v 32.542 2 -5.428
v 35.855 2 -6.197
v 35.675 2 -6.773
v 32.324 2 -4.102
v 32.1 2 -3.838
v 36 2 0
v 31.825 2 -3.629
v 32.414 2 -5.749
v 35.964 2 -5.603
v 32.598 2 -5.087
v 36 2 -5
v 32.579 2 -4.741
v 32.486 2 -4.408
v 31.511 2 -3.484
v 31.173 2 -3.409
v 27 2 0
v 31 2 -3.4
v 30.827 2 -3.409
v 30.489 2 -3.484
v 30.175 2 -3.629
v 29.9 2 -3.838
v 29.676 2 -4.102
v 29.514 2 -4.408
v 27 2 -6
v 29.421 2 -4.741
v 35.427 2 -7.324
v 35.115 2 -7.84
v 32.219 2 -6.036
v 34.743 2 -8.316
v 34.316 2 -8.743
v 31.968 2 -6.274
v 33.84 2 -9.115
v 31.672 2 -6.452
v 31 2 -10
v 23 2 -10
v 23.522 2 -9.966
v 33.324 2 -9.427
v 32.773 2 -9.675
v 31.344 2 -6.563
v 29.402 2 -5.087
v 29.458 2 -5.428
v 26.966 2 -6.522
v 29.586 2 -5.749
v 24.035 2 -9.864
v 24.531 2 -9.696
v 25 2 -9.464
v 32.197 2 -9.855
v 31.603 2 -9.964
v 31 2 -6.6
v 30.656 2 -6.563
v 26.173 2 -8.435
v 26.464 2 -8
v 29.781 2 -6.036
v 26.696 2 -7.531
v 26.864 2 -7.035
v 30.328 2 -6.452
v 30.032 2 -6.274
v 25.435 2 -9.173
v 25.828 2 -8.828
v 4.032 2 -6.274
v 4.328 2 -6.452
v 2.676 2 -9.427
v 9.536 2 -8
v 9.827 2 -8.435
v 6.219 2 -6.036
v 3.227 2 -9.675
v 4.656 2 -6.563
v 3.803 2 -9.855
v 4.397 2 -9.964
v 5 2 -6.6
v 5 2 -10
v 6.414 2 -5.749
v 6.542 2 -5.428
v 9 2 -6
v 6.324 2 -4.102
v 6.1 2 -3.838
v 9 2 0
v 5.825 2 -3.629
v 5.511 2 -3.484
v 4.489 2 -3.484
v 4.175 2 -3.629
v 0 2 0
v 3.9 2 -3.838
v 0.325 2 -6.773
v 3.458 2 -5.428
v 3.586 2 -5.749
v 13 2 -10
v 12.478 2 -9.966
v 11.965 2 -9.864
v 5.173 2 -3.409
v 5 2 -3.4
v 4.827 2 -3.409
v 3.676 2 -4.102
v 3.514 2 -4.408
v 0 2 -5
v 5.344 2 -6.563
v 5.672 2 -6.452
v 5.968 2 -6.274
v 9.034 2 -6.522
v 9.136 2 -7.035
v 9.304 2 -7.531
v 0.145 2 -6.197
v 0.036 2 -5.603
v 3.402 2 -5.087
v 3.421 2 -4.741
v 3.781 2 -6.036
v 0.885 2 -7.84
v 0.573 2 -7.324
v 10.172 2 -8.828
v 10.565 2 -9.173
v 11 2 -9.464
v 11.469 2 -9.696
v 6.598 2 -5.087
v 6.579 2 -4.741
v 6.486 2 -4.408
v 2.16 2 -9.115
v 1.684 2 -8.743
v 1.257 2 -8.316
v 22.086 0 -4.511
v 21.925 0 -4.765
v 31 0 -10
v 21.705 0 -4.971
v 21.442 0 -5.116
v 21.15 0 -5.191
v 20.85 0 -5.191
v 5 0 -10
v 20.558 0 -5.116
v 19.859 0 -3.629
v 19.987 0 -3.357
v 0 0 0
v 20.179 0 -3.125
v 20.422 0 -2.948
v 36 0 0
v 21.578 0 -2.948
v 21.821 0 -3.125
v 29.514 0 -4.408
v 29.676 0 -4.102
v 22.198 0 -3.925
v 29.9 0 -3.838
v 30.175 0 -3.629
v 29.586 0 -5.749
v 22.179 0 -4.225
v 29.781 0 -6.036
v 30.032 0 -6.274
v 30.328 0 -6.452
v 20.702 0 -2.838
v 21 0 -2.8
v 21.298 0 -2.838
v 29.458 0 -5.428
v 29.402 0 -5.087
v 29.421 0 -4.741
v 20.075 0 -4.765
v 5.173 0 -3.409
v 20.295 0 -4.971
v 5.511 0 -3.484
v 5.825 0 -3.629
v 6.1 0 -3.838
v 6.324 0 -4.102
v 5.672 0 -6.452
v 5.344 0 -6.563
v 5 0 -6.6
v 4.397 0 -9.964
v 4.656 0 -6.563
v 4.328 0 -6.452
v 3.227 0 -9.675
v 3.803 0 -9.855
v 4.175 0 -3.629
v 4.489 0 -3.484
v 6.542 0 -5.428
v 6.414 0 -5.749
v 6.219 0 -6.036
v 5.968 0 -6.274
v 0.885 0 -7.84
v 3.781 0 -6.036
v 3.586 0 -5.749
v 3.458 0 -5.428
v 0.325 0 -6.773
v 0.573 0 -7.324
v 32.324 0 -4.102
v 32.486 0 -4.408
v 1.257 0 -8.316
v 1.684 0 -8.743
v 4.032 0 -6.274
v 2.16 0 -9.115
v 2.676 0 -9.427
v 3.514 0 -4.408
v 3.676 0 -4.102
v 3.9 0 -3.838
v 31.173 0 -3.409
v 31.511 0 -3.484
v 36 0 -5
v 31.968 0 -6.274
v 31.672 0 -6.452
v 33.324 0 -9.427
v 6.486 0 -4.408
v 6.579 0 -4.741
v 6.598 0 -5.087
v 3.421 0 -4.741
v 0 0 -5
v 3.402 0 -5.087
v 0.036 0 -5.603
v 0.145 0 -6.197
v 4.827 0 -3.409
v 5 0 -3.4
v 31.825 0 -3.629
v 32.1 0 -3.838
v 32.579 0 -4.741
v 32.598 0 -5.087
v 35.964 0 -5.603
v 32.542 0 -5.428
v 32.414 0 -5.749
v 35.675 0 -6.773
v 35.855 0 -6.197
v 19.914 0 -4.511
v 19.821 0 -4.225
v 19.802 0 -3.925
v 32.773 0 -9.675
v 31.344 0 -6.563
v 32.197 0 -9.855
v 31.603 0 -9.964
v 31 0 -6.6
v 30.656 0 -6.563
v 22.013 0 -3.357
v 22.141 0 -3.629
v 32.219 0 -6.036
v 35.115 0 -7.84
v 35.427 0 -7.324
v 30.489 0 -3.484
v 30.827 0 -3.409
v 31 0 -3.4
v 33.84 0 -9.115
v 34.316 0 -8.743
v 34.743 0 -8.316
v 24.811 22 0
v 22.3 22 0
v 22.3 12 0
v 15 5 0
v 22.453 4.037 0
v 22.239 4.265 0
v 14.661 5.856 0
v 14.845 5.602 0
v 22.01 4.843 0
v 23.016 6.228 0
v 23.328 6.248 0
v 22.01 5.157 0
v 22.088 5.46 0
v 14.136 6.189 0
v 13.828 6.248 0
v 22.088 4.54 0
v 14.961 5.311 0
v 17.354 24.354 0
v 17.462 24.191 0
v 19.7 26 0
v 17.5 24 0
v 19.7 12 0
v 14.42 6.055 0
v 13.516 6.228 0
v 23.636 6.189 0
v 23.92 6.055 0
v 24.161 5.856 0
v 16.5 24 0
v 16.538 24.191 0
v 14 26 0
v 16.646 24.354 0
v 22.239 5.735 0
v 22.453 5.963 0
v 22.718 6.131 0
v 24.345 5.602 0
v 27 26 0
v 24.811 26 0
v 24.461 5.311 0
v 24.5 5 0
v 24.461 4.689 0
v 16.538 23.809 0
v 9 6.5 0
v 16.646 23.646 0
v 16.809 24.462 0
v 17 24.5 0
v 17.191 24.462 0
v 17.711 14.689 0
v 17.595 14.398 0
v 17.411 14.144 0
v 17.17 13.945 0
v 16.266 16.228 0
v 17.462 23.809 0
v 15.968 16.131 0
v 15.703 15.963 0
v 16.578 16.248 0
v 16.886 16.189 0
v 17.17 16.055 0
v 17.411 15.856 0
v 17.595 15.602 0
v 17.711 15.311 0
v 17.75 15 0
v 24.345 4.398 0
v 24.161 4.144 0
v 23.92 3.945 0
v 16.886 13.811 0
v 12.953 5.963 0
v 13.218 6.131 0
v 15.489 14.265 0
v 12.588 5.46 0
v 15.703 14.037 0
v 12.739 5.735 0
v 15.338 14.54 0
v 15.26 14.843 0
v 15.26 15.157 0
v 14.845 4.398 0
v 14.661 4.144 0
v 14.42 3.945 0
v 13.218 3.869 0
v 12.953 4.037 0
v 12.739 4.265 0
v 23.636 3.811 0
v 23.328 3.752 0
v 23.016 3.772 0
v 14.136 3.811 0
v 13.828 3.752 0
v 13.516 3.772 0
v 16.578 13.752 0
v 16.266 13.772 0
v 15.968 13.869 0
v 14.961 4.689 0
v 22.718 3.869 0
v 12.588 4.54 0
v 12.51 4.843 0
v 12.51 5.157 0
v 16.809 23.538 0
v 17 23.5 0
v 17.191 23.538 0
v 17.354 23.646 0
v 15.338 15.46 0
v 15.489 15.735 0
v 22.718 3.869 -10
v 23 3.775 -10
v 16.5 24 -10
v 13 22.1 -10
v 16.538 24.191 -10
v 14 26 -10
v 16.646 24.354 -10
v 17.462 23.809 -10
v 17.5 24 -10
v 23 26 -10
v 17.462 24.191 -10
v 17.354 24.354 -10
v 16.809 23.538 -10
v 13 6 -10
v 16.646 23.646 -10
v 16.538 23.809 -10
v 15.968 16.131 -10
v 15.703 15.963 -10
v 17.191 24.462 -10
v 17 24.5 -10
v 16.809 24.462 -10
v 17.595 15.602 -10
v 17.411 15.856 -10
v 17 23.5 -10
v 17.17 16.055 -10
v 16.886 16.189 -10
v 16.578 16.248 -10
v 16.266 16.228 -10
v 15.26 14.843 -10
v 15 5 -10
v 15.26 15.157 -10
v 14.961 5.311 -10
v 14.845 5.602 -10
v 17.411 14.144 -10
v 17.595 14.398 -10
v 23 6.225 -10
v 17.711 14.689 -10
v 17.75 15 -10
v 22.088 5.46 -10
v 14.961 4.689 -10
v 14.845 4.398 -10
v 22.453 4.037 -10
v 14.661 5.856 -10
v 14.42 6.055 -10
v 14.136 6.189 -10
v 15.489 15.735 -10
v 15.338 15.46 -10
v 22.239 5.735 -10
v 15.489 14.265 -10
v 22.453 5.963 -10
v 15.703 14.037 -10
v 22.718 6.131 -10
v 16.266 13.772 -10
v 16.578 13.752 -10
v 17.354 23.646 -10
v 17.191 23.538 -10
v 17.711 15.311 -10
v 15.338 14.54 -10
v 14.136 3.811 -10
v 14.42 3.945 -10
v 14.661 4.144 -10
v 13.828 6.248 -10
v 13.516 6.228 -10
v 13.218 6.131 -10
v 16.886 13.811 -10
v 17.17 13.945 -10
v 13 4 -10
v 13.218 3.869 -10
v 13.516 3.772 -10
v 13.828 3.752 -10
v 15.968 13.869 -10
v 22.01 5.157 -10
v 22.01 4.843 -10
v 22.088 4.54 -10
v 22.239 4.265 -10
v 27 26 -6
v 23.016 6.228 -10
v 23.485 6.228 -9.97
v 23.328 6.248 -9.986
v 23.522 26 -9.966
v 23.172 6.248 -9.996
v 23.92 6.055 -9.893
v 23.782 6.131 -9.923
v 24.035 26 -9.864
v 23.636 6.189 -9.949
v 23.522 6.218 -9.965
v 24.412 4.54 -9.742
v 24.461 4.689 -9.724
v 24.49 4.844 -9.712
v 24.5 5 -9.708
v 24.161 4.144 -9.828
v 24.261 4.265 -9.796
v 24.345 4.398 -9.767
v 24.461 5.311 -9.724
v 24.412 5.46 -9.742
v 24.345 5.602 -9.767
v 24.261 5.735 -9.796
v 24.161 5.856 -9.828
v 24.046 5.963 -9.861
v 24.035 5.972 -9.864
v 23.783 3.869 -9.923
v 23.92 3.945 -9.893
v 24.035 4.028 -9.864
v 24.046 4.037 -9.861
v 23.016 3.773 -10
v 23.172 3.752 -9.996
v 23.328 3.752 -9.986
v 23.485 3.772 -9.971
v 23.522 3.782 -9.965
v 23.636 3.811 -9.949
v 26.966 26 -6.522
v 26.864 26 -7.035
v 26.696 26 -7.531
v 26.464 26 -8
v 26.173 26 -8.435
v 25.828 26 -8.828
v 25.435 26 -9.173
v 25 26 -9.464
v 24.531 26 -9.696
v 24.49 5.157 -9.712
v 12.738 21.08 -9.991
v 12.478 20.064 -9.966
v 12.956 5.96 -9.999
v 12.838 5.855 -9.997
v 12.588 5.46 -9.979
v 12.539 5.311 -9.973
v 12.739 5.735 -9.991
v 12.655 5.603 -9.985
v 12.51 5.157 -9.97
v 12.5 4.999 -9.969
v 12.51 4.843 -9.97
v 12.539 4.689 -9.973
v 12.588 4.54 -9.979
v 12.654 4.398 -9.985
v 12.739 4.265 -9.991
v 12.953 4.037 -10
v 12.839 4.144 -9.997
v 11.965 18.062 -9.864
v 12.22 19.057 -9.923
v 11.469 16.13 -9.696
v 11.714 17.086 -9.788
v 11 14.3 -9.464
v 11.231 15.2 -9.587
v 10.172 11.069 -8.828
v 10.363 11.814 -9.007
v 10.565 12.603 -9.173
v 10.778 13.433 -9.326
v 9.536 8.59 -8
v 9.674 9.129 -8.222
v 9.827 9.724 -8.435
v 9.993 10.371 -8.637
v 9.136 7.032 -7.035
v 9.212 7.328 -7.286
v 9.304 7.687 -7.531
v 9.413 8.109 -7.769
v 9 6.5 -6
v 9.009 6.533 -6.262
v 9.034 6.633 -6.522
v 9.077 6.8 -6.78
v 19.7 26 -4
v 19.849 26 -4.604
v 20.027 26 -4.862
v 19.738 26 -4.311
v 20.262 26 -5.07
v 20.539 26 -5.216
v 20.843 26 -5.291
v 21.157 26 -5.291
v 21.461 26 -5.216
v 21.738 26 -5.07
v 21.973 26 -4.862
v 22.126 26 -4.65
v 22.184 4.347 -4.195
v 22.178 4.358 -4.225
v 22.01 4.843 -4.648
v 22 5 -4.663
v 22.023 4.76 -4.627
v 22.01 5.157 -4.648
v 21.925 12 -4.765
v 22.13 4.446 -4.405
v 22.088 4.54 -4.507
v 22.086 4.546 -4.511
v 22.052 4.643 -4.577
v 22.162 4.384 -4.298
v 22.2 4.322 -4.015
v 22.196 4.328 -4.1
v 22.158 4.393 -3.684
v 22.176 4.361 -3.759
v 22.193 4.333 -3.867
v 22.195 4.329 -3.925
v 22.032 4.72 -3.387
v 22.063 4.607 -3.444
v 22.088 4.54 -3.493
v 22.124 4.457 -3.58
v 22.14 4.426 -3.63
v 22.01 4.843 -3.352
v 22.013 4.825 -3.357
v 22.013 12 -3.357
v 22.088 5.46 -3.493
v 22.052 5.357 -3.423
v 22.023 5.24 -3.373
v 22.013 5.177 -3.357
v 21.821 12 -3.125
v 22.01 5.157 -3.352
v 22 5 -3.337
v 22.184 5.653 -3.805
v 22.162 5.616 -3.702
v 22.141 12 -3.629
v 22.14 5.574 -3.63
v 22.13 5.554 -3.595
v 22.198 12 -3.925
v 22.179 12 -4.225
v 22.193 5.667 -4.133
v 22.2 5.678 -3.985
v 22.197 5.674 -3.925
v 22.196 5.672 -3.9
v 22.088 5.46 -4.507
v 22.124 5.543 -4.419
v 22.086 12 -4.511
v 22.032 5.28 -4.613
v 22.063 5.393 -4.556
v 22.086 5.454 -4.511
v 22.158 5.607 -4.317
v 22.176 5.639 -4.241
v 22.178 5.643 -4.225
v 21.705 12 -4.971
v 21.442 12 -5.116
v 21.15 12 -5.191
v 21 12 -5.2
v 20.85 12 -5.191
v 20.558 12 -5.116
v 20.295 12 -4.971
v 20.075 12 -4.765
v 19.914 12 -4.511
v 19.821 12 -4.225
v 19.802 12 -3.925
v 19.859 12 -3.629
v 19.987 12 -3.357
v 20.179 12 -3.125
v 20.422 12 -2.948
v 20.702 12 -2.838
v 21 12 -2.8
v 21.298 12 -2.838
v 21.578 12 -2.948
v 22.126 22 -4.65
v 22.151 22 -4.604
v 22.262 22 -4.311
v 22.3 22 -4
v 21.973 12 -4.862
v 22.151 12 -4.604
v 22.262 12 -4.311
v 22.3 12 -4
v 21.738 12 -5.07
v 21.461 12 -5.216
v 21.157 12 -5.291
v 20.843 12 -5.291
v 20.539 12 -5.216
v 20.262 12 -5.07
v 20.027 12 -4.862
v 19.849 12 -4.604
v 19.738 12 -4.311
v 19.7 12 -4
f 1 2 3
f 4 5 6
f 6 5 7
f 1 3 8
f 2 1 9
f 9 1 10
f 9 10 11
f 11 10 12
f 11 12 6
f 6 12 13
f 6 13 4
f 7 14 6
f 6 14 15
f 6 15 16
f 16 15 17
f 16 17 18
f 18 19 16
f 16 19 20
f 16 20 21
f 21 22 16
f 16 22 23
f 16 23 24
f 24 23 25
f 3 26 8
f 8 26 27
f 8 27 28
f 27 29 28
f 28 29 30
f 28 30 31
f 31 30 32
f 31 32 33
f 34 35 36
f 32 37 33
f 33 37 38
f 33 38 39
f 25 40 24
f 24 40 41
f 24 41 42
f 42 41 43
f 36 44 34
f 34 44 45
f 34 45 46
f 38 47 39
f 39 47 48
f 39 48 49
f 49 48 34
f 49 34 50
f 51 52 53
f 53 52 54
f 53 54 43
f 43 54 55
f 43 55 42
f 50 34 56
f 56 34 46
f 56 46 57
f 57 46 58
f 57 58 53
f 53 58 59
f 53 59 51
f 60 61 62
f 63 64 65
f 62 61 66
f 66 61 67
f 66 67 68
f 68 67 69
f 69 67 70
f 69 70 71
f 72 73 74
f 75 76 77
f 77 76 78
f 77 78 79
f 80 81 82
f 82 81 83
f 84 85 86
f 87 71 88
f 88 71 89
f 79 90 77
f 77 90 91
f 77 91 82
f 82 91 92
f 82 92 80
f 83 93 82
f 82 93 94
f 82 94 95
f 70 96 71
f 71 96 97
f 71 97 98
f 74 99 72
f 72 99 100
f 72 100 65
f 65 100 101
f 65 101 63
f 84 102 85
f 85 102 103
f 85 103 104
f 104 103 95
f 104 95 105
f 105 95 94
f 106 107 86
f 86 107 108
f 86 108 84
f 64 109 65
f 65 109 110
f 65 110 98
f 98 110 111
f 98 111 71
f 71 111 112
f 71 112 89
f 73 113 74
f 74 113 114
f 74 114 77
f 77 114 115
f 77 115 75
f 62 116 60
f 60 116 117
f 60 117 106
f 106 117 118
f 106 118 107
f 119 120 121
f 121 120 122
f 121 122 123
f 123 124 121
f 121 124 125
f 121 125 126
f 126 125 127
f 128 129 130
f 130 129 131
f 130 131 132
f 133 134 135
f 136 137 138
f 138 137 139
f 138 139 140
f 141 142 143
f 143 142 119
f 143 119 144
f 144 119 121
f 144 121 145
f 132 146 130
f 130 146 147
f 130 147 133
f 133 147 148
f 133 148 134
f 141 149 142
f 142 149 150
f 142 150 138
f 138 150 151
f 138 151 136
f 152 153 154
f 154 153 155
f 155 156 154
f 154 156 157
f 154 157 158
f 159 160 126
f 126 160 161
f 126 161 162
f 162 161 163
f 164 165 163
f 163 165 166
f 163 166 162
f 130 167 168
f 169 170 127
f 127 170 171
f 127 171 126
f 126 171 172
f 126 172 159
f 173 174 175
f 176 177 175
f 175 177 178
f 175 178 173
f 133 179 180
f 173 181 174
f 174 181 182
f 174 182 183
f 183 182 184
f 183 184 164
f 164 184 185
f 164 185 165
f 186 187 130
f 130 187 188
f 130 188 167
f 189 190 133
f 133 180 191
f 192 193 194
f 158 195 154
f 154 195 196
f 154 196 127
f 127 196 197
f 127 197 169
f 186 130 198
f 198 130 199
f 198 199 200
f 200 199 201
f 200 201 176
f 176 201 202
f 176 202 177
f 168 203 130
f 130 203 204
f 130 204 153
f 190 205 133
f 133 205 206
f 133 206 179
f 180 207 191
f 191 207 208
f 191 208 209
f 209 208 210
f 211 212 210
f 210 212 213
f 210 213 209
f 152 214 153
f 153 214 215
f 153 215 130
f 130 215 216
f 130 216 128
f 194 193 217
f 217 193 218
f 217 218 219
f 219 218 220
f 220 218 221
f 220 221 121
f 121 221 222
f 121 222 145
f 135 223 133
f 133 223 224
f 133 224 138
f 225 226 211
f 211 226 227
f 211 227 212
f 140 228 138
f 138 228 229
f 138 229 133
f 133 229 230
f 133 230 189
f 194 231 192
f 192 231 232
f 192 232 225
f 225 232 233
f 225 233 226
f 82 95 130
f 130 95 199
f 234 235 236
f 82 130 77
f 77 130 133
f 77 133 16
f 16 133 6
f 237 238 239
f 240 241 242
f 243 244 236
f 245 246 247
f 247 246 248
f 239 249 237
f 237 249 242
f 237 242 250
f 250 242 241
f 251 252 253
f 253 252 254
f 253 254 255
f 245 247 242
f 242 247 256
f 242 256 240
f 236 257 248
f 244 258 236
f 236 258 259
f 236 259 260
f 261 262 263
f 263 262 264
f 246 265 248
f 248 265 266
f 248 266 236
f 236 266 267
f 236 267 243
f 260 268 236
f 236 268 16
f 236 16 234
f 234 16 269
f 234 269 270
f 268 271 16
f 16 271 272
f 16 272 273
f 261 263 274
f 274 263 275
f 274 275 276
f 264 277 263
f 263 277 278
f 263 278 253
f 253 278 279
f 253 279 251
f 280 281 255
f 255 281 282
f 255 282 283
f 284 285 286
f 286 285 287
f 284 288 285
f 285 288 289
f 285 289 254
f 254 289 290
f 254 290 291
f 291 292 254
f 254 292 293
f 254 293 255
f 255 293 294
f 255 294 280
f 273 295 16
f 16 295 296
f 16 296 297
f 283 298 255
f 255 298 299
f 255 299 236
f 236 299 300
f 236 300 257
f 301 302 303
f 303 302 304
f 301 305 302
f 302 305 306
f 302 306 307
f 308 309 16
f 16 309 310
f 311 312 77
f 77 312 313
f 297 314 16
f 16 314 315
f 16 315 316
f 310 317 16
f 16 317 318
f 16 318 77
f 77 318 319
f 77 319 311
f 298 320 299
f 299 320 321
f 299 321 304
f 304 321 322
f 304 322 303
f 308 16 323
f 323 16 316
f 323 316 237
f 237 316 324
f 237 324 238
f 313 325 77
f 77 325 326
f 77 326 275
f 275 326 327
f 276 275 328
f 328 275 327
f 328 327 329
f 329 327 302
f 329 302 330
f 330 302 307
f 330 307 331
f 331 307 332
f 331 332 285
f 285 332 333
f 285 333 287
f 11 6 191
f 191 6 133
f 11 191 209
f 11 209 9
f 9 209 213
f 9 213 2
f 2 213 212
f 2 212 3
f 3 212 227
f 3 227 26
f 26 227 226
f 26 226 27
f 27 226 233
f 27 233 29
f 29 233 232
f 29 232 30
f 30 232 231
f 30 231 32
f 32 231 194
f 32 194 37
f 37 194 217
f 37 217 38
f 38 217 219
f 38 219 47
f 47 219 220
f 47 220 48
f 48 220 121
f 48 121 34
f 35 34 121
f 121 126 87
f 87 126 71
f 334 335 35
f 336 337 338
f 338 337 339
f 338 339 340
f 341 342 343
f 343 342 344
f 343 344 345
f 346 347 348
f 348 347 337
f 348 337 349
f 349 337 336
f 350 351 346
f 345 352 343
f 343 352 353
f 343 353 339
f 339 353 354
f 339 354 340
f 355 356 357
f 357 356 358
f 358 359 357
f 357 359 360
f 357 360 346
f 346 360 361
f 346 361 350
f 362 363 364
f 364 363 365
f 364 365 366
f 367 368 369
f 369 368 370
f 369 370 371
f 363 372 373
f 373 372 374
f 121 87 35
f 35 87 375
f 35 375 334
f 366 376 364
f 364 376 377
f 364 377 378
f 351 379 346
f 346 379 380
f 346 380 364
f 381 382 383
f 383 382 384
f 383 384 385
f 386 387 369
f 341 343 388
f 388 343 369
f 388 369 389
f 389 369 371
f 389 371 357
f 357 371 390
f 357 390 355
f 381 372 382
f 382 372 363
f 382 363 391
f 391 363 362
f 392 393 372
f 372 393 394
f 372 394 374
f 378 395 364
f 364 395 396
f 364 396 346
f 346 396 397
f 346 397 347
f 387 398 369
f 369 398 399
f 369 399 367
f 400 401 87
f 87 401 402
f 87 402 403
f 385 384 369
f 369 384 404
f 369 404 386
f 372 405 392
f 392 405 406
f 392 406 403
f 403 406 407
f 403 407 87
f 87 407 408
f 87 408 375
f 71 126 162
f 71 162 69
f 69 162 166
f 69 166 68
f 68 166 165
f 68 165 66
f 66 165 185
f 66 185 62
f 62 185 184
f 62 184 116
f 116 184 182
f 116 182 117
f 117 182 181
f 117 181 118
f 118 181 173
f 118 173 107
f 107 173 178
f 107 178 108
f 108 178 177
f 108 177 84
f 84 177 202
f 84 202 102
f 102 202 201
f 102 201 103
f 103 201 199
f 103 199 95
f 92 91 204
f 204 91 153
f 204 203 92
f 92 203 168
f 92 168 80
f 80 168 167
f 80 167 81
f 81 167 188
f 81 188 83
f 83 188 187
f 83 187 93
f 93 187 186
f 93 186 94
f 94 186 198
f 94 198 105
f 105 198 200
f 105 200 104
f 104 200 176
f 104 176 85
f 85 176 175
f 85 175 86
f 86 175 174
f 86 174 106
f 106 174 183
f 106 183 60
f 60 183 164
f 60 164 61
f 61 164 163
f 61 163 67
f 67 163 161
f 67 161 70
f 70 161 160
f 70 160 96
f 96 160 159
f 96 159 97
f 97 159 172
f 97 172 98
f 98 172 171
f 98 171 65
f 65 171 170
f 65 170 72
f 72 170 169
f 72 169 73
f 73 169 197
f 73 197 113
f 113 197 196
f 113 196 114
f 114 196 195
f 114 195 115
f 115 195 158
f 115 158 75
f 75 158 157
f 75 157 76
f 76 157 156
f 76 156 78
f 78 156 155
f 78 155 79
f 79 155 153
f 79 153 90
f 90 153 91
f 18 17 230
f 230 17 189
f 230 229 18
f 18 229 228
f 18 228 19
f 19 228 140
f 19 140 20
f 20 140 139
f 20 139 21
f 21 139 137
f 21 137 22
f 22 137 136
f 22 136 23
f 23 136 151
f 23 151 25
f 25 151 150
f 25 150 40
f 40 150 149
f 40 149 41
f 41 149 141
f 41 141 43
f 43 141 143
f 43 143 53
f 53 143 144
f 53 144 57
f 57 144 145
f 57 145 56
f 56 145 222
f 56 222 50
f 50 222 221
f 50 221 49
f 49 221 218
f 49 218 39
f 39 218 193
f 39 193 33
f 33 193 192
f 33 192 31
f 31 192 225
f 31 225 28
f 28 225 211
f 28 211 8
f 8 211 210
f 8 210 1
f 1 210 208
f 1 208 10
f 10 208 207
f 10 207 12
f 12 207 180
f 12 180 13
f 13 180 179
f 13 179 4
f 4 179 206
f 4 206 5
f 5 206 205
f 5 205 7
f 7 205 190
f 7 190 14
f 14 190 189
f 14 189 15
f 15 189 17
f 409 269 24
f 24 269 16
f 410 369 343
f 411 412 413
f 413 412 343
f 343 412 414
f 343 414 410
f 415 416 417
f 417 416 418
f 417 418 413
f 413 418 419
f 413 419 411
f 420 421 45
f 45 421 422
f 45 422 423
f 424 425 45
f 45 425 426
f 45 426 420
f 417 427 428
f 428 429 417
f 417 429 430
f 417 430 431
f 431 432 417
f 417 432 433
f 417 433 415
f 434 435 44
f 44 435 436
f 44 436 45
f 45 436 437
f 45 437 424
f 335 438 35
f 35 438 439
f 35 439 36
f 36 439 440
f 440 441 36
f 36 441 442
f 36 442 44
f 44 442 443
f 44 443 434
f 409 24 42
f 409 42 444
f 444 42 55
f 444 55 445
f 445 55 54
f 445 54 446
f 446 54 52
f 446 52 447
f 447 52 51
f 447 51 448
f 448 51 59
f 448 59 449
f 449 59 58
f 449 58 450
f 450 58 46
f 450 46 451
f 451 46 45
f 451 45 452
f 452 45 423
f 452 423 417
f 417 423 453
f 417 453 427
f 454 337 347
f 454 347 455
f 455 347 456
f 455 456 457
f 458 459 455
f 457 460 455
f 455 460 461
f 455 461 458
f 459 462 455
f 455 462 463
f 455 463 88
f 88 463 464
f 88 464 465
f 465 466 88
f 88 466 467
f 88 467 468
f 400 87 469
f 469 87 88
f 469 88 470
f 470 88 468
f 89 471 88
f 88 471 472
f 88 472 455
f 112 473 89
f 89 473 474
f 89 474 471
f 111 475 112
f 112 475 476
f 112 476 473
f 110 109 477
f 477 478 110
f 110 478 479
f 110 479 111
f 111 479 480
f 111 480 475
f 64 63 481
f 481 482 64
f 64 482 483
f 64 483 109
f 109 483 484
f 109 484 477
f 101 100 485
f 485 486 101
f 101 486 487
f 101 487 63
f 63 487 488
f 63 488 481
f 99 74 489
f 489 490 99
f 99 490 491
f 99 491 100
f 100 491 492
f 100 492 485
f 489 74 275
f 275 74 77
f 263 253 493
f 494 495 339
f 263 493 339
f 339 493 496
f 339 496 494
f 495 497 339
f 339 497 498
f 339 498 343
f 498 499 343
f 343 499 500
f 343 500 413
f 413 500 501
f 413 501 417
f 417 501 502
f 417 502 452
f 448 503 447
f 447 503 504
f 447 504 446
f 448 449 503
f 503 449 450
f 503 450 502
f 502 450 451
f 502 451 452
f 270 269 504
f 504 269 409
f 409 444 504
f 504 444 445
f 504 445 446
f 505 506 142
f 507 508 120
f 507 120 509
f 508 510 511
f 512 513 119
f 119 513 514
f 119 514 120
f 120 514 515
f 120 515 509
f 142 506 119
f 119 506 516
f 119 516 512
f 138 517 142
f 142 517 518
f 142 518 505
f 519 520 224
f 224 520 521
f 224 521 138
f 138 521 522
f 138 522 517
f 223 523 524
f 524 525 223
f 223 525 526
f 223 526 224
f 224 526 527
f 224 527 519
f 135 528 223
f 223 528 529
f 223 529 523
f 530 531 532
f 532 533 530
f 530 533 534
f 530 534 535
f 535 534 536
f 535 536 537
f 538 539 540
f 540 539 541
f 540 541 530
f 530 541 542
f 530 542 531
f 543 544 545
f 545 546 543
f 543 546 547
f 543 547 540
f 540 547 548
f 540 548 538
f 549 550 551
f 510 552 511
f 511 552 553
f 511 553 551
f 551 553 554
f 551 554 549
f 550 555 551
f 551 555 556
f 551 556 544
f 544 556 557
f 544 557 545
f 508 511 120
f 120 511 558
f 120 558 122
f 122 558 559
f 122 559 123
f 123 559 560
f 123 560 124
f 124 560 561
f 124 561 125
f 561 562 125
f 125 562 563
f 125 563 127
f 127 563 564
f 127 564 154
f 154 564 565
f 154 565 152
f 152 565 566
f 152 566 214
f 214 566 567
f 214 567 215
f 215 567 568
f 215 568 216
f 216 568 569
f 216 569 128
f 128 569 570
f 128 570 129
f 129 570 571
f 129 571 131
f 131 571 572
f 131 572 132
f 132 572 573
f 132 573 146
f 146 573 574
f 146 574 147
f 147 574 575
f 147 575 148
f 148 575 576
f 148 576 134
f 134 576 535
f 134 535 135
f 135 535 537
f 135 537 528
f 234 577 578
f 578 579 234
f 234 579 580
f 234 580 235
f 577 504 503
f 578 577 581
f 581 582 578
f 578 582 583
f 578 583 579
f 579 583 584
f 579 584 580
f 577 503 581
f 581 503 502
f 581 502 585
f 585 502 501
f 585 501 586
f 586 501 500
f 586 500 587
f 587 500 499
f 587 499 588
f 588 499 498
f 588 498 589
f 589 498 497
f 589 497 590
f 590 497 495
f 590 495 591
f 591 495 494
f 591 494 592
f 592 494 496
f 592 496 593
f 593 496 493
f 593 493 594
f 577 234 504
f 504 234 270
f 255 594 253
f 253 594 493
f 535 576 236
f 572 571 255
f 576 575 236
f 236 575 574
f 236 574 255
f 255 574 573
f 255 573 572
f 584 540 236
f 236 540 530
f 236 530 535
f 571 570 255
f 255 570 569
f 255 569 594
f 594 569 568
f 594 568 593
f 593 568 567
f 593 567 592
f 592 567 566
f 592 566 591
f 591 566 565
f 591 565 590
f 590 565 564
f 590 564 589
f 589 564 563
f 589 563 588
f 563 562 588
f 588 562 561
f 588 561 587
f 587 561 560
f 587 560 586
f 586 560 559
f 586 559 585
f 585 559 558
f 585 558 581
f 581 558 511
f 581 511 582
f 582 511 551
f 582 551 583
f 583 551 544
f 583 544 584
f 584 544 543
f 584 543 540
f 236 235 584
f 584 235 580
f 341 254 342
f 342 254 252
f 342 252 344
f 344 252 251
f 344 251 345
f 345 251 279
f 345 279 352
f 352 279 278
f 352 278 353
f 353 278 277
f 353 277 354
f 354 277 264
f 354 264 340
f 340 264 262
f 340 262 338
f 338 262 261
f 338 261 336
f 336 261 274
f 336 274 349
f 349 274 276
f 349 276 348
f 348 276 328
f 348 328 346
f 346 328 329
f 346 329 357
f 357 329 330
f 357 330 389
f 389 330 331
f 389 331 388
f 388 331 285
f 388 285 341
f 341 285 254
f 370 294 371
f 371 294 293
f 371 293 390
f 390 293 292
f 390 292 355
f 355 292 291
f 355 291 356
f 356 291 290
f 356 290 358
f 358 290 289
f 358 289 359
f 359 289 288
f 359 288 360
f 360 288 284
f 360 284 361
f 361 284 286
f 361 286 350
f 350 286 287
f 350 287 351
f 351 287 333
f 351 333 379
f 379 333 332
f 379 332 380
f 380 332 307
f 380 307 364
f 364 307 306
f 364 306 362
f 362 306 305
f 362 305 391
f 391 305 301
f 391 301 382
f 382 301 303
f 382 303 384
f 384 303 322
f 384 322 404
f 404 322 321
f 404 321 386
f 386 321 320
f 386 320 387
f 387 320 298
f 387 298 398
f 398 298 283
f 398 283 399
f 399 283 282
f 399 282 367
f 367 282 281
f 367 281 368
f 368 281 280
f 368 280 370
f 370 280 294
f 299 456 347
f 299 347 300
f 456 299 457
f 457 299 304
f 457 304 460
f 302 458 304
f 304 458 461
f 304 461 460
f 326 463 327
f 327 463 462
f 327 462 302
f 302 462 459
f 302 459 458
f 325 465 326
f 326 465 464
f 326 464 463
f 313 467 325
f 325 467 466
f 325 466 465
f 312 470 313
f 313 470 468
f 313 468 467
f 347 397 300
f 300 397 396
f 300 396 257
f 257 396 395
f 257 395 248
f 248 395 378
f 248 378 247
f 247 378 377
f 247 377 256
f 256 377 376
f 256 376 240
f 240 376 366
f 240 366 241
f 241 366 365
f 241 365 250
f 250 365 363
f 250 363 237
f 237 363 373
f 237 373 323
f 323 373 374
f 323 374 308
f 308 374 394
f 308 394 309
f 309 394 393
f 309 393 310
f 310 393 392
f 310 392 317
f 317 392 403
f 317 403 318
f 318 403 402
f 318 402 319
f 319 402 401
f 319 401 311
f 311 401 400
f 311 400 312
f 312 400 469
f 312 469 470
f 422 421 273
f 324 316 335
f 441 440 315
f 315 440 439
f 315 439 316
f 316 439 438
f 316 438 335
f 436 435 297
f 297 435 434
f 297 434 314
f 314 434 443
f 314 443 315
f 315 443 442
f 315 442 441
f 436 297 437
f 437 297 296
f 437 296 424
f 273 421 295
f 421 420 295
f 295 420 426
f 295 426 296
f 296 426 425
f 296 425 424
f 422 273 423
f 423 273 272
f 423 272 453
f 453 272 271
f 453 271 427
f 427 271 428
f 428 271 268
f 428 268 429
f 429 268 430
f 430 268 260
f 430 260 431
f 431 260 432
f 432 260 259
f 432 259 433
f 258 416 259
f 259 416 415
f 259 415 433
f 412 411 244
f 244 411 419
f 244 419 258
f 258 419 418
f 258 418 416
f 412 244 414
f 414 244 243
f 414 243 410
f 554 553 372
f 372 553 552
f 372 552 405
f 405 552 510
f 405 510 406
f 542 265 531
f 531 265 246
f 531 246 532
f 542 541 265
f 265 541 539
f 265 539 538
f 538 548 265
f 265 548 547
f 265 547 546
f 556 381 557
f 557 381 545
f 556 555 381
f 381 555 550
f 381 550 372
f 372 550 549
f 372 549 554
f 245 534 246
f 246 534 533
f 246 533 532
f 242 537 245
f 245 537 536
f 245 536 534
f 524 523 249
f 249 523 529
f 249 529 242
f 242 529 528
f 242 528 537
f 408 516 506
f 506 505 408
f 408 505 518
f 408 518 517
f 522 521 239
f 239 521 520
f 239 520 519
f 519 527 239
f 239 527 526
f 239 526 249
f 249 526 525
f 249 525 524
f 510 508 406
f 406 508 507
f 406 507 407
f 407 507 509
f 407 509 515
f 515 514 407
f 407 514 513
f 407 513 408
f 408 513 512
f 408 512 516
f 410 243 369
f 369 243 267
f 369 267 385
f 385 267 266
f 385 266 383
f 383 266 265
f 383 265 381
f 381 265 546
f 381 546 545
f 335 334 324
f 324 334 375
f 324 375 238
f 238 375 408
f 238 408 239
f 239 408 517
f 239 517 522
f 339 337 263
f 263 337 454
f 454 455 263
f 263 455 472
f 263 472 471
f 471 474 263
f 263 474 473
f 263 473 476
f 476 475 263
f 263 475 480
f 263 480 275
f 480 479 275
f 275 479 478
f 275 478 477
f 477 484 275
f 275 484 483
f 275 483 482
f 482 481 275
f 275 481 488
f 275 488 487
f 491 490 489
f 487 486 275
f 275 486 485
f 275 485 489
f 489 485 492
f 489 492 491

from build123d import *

# Parameters (mm, degrees)
SKETCH1_R           = 1.6
BOSS_EXTRUDE1_DEPTH = 2
BOSS_EXTRUDE2_DEPTH = 26
CUT_EXTRUDE1_REACH  = 28
SKETCH3_R           = 1.2
CUT_EXTRUDE2_DEPTH  = 4
CUT_EXTRUDE3_DEPTH  = 14
CUT_EXTRUDE4_REACH  = 12
SKETCH6_R           = 0.5
SKETCH6_R_2         = 1.25


with BuildPart() as part:
    # Sketch1 → Boss-Extrude1 (new body)
    with BuildSketch(Plane(origin=(0, 0, 0), x_dir=(1, 0, 0), z_dir=(0, 1, 0))):
        with BuildLine():
            Line((0, 0), (36, 0))
            Line((36, 0), (36, 5))
            ThreePointArc((36, 5), (34.535533906, 8.535533906), (31, 10))
            Line((31, 10), (27, 10))
            Line((27, 10), (9, 10))
            Line((9, 10), (5, 10))
            ThreePointArc((5, 10), (1.464466094, 8.535533906), (0, 5))
            Line((0, 5), (0, 0))
        make_face()
        with Locations((5, 5)):
            Circle(SKETCH1_R, mode=Mode.SUBTRACT)
        with Locations((31, 5)):
            Circle(SKETCH1_R, mode=Mode.SUBTRACT)
    extrude(amount=BOSS_EXTRUDE1_DEPTH)

    # Sketch2 → Boss-Extrude2 (add)
    with BuildSketch(Plane(origin=(0, 0, 0), x_dir=(1, 0, 0), z_dir=(0, 1, 0))):
        with BuildLine():
            Line((27, 0), (27, 6))
            ThreePointArc((27, 6), (25.828427125, 8.828427125), (23, 10))
            Line((23, 10), (13, 10))
            ThreePointArc((13, 10), (10.171572875, 8.828427125), (9, 6))
            Line((9, 6), (9, 0))
            Line((9, 0), (27, 0))
        make_face()
    extrude(amount=BOSS_EXTRUDE2_DEPTH)

    # Sketch3 → Cut-Extrude1 (cut, up to next)
    with BuildSketch(Plane(origin=(0, 26, 0), x_dir=(1, 0, 0), z_dir=(0, 1, 0)), mode=Mode.PRIVATE) as cut_extrude1_sk1:
        with Locations((21, 4)):
            Circle(SKETCH3_R)
    cut_extrude1_tool1 = extrude(cut_extrude1_sk1.sketch, amount=-CUT_EXTRUDE1_REACH, mode=Mode.PRIVATE) & part.part
    add(cut_extrude1_tool1.solids().sort_by_distance((21, 26, -4))[0], mode=Mode.SUBTRACT)

    # Sketch4 → Cut-Extrude2 (cut)
    with BuildSketch(Plane(origin=(0, 26, 0), x_dir=(1, 0, 0), z_dir=(0, 1, 0))):
        with BuildLine():
            Line((22.125833025, 4.65), (24.810511777, 0))
            Line((24.810511777, 0), (19.7, 0))
            Line((19.7, 0), (19.7, 4))
            ThreePointArc((19.7, 4), (20.663535241, 5.255703574), (22.125833025, 4.65))
        make_face()
    extrude(amount=-CUT_EXTRUDE2_DEPTH, mode=Mode.SUBTRACT)

    # Sketch5 → Cut-Extrude3 (cut)
    with BuildSketch(Plane(origin=(0, 26, 0), x_dir=(1, 0, 0), z_dir=(0, 1, 0))):
        with BuildLine():
            Line((19.7, 4), (19.7, 0))
            Line((19.7, 0), (22.3, 0))
            Line((22.3, 0), (22.3, 4))
            ThreePointArc((22.3, 4), (21, 5.3), (19.7, 4))
        make_face()
    extrude(amount=-CUT_EXTRUDE3_DEPTH, mode=Mode.SUBTRACT)

    # Sketch6 → Cut-Extrude4 (cut, up to next)
    with BuildSketch(Plane.XY, mode=Mode.PRIVATE) as cut_extrude4_sk1:
        with Locations((17, 24)):
            Circle(SKETCH6_R)
    cut_extrude4_tool1 = extrude(cut_extrude4_sk1.sketch, amount=-CUT_EXTRUDE4_REACH, mode=Mode.PRIVATE) & part.part
    add(cut_extrude4_tool1.solids().sort_by_distance((17, 24, 0))[0], mode=Mode.SUBTRACT)
    # Sketch6 → Cut-Extrude4 (cut, up to next)
    with BuildSketch(Plane.XY, mode=Mode.PRIVATE) as cut_extrude4_sk2:
        with Locations((16.5, 15)):
            Circle(SKETCH6_R_2)
    cut_extrude4_tool2 = extrude(cut_extrude4_sk2.sketch, amount=-CUT_EXTRUDE4_REACH, mode=Mode.PRIVATE) & part.part
    add(cut_extrude4_tool2.solids().sort_by_distance((16.5, 15, 0))[0], mode=Mode.SUBTRACT)
    # Sketch6 → Cut-Extrude4 (cut, up to next)
    with BuildSketch(Plane.XY, mode=Mode.PRIVATE) as cut_extrude4_sk3:
        with Locations((13.75, 5)):
            Circle(SKETCH6_R_2)
    cut_extrude4_tool3 = extrude(cut_extrude4_sk3.sketch, amount=-CUT_EXTRUDE4_REACH, mode=Mode.PRIVATE) & part.part
    add(cut_extrude4_tool3.solids().sort_by_distance((13.75, 5, 0))[0], mode=Mode.SUBTRACT)
    # Sketch6 → Cut-Extrude4 (cut, up to next)
    with BuildSketch(Plane.XY, mode=Mode.PRIVATE) as cut_extrude4_sk4:
        with Locations((23.25, 5)):
            Circle(SKETCH6_R_2)
    cut_extrude4_tool4 = extrude(cut_extrude4_sk4.sketch, amount=-CUT_EXTRUDE4_REACH, mode=Mode.PRIVATE) & part.part
    add(cut_extrude4_tool4.solids().sort_by_distance((23.25, 5, 0))[0], mode=Mode.SUBTRACT)
    # Sketch6 → Cut-Extrude4 (cut, up to next)
    with BuildSketch(Plane.XY, mode=Mode.PRIVATE) as cut_extrude4_sk5:
        Polygon((9, 6.5), (14, 26), (9, 26), align=None)
    cut_extrude4_tool5 = extrude(cut_extrude4_sk5.sketch, amount=-CUT_EXTRUDE4_REACH, mode=Mode.PRIVATE) & part.part
    add(cut_extrude4_tool5.solids().sort_by_distance((10.666667, 19.5, 0))[0], mode=Mode.SUBTRACT)


solid = part.part
